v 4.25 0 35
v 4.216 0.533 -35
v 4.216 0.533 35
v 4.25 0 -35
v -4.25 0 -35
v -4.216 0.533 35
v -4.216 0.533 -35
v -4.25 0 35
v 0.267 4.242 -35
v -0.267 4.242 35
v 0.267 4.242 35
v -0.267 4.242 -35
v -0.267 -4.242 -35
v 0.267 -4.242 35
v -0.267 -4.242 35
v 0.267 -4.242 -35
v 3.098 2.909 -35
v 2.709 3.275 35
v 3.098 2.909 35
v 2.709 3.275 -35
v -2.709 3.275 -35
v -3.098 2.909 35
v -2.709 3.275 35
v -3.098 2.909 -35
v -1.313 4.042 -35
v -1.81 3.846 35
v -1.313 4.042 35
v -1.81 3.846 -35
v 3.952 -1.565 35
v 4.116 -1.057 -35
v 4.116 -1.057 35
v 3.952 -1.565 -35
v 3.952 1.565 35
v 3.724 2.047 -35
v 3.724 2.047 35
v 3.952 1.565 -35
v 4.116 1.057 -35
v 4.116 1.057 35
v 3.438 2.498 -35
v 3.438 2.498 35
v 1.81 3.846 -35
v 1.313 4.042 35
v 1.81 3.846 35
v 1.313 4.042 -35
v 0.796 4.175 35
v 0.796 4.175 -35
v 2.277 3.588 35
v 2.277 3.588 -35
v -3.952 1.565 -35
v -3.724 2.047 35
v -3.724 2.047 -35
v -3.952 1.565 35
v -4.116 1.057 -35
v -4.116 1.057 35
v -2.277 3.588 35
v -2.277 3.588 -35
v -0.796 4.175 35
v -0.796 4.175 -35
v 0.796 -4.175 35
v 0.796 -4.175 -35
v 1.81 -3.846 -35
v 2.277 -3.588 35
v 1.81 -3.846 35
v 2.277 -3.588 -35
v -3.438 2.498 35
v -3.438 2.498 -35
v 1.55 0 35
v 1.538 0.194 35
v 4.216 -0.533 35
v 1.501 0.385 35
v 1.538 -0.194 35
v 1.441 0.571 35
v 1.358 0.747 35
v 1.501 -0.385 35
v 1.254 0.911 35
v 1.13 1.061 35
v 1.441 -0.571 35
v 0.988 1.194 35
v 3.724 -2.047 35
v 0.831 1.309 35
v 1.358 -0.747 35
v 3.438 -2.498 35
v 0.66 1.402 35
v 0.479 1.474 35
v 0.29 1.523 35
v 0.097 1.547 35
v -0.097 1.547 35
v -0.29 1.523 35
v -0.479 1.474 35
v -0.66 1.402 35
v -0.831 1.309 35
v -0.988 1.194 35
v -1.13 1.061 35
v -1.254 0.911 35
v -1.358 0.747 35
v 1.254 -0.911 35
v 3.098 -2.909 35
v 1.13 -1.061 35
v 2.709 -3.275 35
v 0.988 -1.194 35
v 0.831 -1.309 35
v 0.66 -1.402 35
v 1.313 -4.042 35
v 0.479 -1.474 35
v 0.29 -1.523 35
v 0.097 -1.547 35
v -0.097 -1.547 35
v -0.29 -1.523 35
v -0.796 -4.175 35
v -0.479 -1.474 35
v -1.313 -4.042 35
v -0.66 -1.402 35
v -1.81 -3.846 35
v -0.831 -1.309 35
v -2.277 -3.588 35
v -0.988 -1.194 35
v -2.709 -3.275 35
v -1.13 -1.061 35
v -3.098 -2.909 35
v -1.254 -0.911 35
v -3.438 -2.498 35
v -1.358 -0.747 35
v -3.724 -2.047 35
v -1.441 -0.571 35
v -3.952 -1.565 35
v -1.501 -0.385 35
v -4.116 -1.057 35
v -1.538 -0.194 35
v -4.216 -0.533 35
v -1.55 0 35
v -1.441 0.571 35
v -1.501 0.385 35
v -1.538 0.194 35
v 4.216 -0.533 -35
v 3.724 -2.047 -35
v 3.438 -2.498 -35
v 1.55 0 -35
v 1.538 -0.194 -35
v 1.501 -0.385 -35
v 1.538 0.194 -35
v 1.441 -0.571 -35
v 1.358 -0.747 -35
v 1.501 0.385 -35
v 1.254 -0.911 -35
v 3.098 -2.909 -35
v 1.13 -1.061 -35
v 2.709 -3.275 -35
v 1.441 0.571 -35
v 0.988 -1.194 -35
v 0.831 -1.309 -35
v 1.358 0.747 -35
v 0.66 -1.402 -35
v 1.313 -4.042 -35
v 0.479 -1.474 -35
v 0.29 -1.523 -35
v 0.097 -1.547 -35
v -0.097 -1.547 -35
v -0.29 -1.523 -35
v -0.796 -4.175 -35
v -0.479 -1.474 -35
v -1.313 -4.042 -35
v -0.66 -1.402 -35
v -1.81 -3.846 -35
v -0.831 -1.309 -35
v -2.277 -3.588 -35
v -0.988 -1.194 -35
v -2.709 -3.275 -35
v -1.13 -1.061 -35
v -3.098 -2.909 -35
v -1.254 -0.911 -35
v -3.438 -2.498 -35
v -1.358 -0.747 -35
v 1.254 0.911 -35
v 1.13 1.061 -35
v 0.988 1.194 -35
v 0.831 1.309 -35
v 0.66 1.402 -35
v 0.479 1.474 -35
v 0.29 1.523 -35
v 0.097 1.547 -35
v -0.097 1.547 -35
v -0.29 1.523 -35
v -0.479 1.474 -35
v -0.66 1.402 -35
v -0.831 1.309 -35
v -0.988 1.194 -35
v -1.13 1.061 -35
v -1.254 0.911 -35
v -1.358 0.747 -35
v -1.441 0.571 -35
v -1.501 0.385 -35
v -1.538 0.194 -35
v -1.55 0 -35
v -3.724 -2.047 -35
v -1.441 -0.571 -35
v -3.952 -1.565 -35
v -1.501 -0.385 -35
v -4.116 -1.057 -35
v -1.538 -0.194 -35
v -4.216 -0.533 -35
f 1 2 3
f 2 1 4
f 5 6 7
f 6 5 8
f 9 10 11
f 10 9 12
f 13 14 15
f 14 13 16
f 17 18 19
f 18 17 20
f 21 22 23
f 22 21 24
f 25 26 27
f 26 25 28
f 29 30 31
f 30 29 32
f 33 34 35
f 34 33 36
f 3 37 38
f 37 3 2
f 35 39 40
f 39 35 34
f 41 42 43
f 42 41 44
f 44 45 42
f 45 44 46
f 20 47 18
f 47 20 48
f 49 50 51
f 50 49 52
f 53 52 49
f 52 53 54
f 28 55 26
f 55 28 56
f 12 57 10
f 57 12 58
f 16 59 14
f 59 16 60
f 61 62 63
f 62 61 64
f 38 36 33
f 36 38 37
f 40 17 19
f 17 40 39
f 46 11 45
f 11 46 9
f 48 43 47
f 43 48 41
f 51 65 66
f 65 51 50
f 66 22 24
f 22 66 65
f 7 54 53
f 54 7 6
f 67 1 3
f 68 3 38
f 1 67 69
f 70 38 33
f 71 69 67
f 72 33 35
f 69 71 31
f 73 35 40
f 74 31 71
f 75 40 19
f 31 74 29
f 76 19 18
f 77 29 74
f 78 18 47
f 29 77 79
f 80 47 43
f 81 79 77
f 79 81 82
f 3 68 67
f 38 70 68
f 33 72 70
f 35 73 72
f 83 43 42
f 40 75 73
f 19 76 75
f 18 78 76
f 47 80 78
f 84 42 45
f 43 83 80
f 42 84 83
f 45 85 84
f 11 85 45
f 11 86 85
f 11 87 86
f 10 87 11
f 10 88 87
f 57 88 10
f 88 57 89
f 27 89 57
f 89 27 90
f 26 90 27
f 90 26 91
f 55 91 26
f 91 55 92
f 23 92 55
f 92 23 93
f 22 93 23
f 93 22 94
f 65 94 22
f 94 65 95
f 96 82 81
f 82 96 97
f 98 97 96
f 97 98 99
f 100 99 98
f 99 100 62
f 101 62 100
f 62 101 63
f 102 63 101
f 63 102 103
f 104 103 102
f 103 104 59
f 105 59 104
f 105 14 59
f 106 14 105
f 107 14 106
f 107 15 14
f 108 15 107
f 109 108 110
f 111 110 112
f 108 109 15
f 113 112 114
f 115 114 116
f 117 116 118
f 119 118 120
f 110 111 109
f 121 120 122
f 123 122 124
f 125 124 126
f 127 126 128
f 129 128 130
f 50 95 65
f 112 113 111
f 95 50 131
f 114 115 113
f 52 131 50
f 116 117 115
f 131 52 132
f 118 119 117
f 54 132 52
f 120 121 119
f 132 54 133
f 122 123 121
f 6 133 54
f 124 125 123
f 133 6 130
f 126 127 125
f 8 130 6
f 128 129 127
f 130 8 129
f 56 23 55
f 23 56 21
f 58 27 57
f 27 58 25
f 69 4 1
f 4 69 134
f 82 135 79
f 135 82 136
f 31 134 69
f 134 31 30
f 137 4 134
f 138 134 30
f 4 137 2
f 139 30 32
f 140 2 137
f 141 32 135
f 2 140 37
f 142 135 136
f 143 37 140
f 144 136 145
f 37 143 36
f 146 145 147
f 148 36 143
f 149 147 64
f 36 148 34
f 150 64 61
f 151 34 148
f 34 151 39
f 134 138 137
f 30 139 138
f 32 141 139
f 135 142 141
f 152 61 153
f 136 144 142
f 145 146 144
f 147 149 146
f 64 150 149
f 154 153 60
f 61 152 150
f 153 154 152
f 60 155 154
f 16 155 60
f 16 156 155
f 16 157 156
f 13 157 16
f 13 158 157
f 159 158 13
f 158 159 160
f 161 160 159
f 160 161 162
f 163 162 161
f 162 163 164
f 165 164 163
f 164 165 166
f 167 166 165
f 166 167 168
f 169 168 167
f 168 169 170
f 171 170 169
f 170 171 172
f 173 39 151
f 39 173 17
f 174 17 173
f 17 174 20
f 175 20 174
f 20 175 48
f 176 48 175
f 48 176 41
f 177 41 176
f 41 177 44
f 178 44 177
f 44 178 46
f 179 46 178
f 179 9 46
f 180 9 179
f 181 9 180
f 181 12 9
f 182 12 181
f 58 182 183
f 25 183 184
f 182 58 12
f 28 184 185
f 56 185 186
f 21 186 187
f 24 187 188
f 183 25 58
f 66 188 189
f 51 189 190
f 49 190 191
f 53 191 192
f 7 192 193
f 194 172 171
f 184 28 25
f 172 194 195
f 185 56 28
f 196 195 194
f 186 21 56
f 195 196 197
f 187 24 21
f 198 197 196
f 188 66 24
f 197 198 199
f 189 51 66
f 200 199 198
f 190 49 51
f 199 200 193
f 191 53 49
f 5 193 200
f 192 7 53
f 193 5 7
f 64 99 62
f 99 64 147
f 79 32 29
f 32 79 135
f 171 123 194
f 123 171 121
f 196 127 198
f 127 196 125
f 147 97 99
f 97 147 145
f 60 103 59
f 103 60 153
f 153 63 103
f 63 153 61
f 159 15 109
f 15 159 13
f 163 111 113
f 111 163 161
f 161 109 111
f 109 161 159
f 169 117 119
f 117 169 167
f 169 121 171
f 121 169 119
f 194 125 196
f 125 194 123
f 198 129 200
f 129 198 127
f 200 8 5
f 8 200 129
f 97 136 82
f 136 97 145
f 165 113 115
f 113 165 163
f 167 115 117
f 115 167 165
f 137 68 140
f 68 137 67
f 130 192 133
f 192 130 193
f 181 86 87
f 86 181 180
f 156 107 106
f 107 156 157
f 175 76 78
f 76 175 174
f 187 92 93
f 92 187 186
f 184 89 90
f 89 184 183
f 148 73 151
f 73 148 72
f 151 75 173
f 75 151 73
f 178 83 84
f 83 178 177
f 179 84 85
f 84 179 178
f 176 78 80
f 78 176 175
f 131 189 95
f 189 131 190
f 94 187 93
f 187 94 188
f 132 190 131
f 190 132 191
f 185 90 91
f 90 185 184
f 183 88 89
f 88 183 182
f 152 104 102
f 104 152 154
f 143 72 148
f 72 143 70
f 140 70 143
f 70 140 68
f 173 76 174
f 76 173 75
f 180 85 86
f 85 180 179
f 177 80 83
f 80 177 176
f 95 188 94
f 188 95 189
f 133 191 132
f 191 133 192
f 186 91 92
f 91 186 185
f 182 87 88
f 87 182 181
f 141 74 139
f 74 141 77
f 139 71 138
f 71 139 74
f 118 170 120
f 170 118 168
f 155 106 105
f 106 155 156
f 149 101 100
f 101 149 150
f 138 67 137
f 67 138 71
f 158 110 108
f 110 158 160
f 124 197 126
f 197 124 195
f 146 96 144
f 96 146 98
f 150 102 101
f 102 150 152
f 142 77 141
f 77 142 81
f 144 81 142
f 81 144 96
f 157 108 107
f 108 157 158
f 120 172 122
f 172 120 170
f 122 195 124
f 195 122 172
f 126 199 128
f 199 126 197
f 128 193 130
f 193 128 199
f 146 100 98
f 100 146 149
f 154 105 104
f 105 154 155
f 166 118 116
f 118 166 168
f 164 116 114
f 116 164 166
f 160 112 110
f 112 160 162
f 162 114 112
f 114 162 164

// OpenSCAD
$fn = 50;


difference() {
	union() {
		translate(v = [0, 0, -35.0000000000]) {
			cylinder(h = 70, r = 4.2500000000);
		}
	}
	union() {
		translate(v = [0, 0, -100.0000000000]) {
			cylinder(h = 200, r = 1.5500000000);
		}
	}
}
